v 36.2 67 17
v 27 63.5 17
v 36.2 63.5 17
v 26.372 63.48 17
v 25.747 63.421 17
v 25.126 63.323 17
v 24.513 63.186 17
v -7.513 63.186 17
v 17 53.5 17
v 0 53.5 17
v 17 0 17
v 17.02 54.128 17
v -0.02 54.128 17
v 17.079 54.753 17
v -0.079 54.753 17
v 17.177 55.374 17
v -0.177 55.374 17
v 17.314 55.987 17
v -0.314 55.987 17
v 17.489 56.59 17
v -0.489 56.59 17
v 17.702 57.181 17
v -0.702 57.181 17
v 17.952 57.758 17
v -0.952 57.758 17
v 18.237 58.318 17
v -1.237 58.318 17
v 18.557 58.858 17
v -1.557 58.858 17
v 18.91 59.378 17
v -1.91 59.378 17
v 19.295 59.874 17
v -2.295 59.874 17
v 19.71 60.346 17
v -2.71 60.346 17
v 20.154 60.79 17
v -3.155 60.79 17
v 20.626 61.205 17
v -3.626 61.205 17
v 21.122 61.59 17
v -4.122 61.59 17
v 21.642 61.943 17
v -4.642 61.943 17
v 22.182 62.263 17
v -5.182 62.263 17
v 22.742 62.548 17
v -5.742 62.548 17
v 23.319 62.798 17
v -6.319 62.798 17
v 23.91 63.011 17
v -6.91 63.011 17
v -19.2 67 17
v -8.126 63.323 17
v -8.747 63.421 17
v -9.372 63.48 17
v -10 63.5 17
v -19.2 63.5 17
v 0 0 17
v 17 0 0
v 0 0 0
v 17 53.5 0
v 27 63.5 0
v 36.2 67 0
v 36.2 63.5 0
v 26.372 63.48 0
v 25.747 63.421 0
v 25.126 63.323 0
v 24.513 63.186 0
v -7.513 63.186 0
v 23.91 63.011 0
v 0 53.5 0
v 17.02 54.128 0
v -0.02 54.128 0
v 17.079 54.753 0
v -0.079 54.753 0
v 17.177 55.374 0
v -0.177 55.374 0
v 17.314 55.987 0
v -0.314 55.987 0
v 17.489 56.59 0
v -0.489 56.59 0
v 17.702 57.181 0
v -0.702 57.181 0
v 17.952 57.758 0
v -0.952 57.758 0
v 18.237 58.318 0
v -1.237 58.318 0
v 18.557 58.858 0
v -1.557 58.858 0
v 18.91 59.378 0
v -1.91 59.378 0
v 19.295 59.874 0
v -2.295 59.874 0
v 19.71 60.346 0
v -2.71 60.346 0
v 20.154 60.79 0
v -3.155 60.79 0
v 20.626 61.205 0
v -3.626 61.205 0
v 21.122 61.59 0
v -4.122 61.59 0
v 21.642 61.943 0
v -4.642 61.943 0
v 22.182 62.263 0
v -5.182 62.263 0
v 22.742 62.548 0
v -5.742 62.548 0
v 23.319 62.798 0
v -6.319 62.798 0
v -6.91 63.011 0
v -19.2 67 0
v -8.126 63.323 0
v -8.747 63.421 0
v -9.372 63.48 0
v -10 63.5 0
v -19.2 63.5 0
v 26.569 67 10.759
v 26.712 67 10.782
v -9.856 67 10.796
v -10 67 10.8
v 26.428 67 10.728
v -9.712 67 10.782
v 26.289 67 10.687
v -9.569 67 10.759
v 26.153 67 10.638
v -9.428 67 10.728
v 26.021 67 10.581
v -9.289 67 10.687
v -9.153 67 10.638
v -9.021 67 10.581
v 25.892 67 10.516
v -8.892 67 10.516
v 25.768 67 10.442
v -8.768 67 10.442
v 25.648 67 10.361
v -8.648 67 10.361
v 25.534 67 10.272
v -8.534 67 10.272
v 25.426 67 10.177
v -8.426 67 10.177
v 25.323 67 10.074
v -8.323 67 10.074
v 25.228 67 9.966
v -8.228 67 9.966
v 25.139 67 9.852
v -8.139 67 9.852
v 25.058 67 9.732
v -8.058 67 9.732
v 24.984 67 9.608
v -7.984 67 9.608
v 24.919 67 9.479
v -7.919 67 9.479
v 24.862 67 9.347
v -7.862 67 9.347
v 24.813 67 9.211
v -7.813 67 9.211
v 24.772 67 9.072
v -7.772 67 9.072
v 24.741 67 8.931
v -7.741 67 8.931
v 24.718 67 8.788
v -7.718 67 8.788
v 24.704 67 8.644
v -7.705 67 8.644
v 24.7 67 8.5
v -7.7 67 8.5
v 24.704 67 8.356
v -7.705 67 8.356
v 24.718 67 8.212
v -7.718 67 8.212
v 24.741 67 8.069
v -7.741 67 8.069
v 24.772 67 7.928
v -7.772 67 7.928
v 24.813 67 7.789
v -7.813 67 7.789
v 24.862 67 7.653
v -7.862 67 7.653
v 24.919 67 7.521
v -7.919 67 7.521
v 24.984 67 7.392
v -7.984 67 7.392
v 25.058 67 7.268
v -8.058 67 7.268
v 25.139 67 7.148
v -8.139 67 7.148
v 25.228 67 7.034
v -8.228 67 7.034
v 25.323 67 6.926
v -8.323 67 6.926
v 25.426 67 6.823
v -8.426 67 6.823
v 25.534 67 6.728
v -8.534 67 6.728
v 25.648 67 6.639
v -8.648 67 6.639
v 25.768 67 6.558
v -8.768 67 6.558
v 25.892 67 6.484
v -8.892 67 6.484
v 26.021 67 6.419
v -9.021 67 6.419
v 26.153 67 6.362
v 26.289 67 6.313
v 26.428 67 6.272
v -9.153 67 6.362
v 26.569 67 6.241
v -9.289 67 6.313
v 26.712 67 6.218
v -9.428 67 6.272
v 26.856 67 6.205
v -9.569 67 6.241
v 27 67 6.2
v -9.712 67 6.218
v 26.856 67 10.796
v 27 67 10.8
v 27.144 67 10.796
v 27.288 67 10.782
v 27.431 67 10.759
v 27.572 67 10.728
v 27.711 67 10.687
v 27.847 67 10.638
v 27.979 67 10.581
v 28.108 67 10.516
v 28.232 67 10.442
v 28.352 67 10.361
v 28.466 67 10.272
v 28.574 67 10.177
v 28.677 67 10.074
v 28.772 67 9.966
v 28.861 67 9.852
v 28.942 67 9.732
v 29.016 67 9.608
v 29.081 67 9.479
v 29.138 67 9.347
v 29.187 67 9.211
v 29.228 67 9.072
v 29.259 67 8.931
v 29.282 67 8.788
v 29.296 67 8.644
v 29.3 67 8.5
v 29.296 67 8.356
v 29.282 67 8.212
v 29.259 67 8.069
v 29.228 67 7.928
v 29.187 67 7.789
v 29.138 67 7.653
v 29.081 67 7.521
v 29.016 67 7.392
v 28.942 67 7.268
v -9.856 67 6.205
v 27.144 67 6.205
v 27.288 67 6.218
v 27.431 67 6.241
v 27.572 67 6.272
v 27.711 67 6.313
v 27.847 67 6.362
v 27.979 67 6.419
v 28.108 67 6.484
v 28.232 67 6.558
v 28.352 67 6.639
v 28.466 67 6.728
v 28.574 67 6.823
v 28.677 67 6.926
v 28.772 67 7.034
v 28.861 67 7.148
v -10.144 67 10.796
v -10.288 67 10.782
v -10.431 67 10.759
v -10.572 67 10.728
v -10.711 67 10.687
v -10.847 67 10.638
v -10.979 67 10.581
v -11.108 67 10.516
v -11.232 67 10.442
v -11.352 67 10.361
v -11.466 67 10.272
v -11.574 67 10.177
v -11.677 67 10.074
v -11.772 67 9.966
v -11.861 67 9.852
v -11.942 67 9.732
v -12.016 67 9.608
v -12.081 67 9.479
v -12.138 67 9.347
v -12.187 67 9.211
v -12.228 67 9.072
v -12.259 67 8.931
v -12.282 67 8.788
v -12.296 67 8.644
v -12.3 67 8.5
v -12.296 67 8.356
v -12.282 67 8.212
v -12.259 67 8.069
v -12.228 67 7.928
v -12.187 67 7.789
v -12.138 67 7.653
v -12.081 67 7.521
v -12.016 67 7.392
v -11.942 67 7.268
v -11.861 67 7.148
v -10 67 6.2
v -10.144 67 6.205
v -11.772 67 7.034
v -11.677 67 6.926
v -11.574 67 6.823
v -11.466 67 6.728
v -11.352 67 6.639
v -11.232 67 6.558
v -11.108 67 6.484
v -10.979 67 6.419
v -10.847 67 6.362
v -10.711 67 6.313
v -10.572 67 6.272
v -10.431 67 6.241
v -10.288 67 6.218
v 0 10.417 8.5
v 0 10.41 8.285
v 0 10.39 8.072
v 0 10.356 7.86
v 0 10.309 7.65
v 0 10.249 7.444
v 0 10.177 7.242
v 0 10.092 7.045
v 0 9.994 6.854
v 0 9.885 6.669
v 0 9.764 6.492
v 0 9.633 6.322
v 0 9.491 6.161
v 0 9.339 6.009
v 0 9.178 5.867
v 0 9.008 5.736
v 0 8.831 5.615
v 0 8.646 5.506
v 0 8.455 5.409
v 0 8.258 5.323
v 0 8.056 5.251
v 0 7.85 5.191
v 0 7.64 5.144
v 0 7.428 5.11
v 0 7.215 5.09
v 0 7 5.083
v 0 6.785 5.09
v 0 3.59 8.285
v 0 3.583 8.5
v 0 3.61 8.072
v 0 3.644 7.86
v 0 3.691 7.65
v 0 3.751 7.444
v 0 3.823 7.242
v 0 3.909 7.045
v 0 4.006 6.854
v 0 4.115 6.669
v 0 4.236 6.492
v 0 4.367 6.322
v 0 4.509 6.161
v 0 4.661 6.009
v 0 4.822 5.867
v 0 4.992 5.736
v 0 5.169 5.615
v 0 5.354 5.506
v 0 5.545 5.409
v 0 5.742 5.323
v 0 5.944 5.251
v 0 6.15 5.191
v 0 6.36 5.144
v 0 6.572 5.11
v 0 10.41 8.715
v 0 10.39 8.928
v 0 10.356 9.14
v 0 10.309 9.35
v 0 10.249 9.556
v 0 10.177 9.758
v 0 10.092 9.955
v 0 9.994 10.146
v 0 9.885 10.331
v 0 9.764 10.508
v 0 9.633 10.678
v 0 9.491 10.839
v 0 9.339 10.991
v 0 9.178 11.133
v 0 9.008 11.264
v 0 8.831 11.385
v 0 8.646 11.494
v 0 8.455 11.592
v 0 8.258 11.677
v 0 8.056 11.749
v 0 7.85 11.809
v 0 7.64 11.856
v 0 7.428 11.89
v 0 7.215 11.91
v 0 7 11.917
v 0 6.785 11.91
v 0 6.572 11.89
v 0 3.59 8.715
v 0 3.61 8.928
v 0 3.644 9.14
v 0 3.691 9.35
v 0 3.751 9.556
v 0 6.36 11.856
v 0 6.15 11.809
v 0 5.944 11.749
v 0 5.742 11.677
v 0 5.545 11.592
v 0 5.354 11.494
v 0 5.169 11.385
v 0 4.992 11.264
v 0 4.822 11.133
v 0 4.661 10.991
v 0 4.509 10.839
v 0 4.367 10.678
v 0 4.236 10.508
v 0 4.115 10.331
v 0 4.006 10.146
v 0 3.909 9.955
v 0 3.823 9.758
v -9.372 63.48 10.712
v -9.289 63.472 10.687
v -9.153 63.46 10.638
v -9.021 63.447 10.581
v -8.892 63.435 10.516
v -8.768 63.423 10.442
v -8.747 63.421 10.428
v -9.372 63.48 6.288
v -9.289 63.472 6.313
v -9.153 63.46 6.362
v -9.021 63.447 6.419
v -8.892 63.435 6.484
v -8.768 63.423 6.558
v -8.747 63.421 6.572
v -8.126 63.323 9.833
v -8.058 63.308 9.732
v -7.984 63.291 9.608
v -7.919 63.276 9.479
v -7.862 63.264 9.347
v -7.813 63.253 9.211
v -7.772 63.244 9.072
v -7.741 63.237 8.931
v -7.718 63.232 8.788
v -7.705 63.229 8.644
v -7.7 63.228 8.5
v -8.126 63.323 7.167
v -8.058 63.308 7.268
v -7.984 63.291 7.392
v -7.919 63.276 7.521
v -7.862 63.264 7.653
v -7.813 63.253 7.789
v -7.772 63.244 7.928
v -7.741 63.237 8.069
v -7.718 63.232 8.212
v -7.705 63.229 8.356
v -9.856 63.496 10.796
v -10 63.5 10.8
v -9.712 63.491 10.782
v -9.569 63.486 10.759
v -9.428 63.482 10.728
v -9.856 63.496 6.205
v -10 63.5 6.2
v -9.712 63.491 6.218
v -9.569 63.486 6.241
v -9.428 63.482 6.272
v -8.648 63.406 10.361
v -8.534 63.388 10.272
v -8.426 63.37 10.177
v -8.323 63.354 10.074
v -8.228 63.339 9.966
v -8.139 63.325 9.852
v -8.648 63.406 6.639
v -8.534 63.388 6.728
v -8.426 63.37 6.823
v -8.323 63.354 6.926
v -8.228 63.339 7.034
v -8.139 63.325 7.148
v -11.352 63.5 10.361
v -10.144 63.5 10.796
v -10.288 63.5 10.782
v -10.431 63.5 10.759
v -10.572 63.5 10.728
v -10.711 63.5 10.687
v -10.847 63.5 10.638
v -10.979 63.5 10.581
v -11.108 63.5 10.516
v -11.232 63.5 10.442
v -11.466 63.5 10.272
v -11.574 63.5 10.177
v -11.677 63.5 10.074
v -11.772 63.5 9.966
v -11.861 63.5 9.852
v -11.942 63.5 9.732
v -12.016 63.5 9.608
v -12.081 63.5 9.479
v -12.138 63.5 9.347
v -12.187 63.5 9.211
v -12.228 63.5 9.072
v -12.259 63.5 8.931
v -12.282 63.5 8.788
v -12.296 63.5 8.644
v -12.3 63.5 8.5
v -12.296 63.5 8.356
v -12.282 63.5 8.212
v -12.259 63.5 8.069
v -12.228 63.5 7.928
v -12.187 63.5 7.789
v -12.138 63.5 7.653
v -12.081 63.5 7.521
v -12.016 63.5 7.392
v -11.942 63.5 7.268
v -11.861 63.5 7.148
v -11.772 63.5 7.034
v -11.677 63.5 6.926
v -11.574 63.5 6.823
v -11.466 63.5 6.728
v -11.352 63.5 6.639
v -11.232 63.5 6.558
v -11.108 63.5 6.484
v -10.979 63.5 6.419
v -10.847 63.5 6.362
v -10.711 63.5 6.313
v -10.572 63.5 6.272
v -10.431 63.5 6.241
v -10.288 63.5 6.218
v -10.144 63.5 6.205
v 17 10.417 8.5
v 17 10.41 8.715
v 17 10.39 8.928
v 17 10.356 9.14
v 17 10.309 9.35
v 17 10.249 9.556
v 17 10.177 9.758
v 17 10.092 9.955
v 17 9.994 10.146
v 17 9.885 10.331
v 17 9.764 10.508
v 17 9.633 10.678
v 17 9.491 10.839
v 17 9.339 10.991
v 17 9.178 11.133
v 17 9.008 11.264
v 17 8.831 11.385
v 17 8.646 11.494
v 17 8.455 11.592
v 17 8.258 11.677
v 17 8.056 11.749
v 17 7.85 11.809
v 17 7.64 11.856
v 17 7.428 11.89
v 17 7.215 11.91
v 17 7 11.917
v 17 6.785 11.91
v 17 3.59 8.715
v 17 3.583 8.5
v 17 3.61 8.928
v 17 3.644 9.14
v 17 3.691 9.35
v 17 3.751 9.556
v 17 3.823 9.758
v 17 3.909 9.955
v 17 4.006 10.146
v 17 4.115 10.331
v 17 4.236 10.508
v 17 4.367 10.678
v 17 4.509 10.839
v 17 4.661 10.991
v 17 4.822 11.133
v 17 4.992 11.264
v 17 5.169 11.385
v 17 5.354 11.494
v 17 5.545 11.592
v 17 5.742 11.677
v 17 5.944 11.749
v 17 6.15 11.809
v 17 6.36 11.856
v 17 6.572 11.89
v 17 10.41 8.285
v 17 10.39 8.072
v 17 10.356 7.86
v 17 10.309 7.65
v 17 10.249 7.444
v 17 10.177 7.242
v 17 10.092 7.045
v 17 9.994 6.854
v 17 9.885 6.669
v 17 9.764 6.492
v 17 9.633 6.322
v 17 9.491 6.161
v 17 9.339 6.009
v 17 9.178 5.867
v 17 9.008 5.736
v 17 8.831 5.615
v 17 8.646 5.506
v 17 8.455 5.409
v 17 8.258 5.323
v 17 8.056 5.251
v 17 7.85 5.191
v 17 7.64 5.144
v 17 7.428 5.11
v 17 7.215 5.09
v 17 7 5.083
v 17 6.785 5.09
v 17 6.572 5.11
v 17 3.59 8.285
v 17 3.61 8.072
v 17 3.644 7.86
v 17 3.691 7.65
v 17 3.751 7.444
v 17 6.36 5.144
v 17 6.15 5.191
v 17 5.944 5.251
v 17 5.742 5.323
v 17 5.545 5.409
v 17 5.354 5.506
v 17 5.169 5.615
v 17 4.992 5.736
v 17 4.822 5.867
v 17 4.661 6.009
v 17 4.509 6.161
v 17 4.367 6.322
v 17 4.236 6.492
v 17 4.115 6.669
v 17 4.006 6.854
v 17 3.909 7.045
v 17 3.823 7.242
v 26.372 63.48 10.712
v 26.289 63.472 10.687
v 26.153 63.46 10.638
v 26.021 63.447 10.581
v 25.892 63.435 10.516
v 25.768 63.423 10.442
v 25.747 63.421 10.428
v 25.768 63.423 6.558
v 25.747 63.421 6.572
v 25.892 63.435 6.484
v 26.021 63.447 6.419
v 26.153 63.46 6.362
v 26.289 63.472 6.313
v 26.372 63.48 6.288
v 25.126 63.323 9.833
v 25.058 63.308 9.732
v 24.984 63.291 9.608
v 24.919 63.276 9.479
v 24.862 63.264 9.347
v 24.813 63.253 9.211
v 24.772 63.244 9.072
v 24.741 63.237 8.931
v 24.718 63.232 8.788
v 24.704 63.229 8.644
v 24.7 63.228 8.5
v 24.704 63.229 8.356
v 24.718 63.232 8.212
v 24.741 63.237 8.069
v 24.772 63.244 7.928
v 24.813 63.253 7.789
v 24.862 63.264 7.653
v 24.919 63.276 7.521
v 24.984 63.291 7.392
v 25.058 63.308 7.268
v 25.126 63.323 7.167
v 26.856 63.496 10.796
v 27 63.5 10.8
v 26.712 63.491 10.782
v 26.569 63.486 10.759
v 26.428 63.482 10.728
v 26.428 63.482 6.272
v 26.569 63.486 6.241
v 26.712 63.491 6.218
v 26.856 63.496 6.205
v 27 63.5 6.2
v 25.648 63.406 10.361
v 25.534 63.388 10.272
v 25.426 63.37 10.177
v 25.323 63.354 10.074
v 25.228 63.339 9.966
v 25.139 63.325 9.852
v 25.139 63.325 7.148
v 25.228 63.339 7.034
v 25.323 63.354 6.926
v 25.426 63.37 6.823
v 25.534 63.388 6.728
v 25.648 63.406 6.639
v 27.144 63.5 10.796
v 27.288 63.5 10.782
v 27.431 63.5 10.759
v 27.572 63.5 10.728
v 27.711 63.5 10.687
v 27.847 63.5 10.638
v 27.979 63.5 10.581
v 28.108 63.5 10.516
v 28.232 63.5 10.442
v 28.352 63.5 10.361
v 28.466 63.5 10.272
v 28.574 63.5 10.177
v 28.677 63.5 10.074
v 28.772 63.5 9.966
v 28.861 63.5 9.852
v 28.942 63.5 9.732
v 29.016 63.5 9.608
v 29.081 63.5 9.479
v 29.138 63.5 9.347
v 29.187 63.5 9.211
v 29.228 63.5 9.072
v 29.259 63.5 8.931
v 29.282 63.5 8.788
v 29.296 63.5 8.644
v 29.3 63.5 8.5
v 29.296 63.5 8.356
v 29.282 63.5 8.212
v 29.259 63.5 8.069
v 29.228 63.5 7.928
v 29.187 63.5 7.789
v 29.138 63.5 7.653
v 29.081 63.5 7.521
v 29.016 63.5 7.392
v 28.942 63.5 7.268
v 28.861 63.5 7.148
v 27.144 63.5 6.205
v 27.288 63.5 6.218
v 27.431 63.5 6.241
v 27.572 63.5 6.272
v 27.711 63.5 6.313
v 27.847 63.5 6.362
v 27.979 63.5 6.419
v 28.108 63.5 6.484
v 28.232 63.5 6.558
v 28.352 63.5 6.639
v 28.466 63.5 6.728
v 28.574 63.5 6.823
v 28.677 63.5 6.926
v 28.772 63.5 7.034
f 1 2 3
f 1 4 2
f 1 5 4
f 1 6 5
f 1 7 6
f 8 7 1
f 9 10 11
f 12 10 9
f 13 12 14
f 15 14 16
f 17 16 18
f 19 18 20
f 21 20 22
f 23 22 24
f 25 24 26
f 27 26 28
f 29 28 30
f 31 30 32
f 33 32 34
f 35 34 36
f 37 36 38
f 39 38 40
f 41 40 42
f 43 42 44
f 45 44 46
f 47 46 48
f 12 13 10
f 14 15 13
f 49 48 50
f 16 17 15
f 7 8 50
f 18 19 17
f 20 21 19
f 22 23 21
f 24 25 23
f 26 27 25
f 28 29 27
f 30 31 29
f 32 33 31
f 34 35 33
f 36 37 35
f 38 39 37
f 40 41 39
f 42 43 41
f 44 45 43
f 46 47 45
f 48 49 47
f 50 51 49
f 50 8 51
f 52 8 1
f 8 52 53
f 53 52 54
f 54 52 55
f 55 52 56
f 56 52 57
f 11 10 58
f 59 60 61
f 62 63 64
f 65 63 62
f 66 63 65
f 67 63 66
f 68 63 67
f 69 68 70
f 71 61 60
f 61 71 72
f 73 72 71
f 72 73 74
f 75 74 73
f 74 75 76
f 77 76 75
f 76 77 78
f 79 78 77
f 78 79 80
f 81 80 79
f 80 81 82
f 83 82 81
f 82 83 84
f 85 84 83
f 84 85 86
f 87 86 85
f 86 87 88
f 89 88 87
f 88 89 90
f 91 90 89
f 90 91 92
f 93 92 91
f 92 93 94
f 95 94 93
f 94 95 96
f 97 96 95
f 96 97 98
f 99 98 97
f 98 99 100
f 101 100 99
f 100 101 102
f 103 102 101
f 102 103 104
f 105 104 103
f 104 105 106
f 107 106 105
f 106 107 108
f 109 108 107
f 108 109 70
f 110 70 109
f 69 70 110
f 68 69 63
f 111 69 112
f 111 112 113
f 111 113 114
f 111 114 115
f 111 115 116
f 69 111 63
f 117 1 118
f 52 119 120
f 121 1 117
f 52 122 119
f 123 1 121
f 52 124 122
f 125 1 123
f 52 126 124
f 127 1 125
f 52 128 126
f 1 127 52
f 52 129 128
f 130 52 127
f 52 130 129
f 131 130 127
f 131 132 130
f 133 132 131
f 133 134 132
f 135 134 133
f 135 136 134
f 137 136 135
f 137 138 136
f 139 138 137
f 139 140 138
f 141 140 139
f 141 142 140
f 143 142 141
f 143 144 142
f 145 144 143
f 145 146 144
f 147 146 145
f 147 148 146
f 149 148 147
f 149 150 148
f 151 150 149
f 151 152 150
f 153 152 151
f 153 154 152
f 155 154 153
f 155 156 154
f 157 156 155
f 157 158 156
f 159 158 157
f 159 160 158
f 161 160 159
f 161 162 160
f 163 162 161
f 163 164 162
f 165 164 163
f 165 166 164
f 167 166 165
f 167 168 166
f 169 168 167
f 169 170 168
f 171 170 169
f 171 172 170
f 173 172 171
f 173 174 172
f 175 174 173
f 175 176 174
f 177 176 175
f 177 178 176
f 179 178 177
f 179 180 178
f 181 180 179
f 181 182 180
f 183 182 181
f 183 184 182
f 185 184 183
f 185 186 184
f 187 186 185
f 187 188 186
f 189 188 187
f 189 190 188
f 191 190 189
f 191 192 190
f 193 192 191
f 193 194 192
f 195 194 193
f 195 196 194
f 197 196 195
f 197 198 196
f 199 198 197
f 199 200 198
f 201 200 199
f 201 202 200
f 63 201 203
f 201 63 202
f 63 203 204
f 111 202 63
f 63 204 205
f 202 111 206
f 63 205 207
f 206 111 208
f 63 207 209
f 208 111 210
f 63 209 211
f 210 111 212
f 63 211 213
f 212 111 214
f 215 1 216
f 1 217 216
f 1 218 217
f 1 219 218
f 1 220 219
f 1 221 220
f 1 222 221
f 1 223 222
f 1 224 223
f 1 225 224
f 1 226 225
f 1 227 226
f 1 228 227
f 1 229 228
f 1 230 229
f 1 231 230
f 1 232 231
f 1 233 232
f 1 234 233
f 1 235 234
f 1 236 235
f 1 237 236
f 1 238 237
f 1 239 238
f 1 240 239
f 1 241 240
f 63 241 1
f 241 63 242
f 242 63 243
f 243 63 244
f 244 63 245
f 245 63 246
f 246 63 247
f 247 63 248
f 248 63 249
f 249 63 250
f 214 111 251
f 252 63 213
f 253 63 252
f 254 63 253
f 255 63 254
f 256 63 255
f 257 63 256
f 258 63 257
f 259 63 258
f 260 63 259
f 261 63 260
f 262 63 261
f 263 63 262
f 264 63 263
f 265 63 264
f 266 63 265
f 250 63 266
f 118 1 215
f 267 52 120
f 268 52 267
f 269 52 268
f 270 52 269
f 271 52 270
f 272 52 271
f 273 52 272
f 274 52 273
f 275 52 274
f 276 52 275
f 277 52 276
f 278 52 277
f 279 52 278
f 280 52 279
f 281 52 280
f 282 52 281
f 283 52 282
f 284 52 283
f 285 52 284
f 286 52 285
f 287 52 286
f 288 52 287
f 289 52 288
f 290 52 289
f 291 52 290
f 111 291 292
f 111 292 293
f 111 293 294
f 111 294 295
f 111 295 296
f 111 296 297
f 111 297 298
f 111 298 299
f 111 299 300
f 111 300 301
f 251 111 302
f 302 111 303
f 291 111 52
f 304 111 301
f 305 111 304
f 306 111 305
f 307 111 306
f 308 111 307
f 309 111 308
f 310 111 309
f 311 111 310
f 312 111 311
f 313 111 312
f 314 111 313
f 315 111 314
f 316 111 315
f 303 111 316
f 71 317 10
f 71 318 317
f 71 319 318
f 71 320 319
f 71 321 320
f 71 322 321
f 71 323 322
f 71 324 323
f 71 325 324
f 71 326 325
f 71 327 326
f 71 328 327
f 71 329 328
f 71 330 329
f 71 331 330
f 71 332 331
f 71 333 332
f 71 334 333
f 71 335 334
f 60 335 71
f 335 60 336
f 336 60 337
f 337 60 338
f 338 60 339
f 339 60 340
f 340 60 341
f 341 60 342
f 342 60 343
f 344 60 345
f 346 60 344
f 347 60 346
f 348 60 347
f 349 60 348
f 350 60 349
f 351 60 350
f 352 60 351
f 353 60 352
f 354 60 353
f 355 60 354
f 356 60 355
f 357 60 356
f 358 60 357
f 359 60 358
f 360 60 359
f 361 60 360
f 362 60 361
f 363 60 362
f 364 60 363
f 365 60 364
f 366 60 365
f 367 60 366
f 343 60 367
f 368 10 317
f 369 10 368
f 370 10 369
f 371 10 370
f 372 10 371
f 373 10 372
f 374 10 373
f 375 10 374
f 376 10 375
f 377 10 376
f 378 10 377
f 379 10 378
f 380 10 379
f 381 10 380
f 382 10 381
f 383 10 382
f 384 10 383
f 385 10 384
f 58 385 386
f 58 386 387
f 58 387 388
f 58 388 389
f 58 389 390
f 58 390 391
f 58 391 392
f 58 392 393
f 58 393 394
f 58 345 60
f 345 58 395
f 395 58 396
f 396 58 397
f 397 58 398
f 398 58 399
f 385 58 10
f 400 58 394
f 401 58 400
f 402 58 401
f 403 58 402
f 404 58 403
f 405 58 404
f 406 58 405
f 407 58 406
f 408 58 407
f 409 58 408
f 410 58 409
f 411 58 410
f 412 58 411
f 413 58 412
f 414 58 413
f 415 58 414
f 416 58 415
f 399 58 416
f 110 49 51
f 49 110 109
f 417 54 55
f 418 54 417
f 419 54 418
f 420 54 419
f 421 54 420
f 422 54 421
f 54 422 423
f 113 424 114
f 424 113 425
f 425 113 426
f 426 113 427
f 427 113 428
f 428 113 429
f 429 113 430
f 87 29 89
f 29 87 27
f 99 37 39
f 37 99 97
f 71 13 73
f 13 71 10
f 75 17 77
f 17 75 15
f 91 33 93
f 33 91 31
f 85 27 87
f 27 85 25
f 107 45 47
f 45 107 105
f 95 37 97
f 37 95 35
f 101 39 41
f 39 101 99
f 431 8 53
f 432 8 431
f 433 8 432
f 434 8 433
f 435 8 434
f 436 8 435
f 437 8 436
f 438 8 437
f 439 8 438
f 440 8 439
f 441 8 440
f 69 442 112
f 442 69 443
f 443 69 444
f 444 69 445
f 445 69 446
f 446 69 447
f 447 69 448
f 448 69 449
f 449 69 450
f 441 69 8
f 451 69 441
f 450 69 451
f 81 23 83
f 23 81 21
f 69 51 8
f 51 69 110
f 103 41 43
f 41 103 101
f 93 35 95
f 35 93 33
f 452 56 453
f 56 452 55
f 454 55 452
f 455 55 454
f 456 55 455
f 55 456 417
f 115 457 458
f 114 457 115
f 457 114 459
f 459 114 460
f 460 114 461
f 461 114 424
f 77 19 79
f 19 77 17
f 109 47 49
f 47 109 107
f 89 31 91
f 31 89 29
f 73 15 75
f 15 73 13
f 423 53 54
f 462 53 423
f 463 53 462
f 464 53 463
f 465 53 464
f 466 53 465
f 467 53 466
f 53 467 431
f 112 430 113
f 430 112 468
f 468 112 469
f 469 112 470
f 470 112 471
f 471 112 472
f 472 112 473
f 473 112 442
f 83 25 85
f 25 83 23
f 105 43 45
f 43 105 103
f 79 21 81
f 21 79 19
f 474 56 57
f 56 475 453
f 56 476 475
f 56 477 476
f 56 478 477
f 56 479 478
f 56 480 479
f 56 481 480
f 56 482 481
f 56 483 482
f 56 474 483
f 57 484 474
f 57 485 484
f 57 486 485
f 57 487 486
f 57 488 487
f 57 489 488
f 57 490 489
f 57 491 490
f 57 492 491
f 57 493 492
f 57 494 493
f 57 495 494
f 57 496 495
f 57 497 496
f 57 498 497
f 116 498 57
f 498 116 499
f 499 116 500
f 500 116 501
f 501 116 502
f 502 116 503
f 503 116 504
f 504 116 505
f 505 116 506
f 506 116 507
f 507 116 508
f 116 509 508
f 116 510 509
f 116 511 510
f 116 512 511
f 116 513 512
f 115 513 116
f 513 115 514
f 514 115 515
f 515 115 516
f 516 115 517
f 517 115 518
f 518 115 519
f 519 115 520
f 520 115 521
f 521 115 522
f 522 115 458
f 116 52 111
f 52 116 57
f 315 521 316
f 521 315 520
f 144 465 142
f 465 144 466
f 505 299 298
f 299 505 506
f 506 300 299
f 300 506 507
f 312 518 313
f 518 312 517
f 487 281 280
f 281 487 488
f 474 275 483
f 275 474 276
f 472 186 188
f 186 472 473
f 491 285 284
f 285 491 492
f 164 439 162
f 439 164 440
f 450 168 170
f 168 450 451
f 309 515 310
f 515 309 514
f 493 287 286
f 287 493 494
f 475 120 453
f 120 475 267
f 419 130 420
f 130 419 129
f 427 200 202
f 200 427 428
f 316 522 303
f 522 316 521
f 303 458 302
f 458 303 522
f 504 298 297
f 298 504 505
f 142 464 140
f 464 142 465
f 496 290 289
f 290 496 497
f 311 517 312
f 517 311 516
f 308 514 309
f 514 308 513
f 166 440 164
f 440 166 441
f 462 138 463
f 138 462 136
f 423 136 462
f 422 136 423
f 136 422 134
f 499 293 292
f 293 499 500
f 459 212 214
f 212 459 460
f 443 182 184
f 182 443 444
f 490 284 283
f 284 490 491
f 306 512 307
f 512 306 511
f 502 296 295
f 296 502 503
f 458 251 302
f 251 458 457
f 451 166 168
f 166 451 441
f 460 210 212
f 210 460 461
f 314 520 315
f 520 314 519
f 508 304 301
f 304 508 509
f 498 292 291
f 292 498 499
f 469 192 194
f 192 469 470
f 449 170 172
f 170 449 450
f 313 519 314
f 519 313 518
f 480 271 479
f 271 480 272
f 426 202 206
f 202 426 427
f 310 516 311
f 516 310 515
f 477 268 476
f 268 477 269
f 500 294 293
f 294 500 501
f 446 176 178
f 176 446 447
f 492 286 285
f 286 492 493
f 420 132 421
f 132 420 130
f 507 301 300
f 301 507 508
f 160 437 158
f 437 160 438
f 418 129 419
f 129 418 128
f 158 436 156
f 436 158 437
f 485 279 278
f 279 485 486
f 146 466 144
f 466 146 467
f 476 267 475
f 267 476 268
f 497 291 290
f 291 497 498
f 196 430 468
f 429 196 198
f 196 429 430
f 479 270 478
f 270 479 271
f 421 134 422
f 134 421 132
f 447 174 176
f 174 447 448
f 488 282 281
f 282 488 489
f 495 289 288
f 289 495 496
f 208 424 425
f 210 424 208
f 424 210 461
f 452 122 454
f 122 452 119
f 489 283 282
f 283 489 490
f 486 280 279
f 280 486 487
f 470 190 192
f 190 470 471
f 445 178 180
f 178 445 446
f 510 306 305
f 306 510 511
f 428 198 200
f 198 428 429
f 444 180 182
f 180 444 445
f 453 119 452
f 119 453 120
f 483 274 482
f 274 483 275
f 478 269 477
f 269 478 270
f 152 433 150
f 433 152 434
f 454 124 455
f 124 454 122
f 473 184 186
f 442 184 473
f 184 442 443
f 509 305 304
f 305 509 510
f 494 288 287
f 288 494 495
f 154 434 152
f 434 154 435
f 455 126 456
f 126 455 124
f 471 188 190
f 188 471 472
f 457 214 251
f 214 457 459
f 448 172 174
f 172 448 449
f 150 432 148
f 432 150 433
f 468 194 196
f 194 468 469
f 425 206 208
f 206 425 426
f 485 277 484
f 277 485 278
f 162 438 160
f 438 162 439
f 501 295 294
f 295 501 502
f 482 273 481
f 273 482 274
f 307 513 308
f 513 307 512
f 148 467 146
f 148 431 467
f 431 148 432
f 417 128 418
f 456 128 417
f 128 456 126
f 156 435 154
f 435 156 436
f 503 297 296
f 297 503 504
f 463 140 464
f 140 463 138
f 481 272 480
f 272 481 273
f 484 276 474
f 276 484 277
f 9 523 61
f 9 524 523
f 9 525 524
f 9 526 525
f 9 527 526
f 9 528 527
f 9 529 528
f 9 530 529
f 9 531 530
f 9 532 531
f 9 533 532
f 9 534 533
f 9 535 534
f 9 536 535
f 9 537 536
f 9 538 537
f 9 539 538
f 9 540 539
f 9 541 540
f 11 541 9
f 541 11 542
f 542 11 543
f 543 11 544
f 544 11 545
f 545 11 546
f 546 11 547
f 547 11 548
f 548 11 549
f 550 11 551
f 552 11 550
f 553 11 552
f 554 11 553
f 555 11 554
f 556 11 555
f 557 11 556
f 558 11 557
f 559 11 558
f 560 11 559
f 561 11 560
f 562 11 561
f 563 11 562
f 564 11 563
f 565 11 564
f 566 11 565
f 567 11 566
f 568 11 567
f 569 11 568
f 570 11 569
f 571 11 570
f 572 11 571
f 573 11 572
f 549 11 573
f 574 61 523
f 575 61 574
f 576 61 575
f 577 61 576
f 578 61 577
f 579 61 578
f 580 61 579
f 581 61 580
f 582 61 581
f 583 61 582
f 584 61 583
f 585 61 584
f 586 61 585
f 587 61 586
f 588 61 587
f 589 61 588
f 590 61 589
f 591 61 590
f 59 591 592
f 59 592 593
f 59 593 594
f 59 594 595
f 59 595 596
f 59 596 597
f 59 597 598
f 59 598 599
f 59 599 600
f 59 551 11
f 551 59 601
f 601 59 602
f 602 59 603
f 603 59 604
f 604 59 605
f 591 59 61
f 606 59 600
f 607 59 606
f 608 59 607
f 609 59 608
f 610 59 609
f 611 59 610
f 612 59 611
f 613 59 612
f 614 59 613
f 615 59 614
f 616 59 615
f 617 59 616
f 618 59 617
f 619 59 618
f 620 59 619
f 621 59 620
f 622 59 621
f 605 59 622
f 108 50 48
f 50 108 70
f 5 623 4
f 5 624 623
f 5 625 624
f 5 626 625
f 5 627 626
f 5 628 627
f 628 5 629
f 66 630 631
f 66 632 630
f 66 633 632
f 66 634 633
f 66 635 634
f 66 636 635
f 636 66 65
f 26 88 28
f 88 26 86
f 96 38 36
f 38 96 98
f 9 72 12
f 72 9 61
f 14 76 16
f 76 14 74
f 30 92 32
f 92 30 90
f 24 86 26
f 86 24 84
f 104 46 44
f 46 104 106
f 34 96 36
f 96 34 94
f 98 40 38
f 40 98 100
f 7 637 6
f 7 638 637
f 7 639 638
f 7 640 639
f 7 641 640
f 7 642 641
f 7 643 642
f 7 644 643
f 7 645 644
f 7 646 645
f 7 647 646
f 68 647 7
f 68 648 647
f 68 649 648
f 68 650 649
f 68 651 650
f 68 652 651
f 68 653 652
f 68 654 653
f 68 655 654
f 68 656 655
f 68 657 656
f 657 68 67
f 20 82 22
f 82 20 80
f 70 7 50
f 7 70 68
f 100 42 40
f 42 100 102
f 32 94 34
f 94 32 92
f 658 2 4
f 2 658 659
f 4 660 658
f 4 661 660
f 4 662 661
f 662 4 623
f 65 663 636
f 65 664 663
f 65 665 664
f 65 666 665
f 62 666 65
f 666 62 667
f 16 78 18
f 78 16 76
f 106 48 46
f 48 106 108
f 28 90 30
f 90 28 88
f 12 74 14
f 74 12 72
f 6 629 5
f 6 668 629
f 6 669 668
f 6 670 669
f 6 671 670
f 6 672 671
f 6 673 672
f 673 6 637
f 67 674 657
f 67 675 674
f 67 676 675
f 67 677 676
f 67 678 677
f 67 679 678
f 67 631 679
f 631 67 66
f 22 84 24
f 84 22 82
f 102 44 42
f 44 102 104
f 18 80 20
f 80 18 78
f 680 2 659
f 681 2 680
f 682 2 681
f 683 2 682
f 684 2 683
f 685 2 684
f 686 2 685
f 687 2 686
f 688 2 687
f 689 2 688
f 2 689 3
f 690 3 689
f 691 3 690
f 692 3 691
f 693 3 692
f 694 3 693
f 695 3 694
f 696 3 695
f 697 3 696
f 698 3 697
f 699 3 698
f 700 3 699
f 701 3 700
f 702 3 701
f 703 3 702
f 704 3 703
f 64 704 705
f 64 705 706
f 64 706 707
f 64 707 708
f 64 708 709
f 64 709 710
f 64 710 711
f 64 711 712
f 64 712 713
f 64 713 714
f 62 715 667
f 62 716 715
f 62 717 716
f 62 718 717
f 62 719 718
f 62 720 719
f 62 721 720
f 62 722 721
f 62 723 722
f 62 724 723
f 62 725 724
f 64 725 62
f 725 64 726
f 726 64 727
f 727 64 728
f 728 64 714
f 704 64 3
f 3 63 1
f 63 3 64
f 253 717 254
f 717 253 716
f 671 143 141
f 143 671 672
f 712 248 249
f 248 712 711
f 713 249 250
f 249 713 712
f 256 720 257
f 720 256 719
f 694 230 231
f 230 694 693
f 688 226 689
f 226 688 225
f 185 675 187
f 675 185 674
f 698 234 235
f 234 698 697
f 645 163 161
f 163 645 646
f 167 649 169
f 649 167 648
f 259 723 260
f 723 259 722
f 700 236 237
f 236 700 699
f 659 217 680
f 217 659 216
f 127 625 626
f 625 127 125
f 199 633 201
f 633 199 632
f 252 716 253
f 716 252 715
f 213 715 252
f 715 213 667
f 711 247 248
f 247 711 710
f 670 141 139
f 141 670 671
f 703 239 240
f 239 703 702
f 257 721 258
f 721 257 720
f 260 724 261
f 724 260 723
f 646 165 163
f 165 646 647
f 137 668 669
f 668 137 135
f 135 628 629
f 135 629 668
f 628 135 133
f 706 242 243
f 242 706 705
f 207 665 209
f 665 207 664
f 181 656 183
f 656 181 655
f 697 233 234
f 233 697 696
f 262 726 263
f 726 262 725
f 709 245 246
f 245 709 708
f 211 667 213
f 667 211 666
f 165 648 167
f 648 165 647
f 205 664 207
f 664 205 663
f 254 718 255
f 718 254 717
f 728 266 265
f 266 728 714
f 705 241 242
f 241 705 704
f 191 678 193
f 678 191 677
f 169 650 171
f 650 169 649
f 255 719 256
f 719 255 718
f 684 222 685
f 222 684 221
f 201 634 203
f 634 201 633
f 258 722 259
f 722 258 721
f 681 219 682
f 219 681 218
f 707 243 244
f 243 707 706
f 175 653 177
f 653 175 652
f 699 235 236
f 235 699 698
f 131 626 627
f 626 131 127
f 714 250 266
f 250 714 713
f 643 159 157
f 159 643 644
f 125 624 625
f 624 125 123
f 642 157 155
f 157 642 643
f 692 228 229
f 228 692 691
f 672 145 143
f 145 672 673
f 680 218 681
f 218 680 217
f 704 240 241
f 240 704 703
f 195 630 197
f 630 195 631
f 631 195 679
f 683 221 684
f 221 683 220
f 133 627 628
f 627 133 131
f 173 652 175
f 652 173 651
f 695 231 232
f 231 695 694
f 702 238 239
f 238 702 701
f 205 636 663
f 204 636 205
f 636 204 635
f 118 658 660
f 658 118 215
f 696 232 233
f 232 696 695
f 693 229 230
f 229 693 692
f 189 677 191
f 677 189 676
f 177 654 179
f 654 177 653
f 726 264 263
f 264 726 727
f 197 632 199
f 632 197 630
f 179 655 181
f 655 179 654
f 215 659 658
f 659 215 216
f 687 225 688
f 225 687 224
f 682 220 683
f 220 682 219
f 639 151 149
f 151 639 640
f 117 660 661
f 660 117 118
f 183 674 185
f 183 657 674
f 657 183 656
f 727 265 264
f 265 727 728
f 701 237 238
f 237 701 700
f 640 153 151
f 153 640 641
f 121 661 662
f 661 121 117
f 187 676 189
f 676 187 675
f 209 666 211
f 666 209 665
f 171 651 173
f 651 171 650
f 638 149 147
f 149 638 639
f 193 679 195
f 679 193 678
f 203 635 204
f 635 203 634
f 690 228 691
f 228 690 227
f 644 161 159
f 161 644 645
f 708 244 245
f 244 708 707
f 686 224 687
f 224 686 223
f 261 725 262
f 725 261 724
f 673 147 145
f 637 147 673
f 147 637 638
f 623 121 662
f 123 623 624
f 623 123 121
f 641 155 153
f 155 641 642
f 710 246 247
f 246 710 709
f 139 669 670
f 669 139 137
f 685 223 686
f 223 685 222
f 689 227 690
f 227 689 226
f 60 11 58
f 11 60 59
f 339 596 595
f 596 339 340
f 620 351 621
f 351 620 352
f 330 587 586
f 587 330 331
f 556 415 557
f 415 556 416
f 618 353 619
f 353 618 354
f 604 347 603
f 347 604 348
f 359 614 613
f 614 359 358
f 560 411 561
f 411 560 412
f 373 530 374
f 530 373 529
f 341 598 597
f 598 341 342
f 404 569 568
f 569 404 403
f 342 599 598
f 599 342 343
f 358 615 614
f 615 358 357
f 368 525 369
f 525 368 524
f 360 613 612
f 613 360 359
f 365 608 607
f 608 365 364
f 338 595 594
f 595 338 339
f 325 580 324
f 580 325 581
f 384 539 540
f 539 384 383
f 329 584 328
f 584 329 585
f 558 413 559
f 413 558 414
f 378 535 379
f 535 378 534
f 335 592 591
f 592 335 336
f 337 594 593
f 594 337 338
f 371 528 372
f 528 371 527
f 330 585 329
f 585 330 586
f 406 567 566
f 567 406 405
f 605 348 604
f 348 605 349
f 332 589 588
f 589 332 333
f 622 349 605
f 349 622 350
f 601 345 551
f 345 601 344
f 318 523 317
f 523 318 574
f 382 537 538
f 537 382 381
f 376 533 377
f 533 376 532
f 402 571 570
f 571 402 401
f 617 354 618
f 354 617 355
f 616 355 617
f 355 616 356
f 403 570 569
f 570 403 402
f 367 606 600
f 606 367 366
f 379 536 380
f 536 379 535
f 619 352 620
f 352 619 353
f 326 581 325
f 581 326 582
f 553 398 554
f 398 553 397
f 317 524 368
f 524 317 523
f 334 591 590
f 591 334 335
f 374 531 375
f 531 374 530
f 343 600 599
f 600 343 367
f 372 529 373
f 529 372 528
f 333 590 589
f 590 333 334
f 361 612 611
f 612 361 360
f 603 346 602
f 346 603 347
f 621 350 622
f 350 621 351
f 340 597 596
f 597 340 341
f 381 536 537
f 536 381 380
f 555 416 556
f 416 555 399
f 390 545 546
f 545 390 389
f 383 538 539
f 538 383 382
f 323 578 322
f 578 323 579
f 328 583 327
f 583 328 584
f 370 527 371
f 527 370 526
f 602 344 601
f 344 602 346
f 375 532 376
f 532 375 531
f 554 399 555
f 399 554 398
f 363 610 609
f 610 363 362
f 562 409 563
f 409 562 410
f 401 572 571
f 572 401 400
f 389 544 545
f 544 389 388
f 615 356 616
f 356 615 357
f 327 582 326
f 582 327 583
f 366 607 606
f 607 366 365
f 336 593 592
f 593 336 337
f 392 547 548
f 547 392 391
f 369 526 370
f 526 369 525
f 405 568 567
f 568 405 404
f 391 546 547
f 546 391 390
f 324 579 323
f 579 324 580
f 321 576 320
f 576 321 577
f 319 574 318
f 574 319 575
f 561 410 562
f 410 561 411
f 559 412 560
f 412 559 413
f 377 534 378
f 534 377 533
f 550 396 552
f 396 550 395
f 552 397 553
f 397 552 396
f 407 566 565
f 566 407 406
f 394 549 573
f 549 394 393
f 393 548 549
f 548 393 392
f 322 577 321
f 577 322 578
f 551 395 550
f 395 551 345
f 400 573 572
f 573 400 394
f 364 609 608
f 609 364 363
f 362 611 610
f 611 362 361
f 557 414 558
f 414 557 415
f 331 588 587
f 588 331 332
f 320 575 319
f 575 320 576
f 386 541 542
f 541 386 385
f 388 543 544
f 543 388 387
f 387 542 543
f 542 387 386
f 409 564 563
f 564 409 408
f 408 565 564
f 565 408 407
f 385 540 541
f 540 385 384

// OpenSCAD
length = 60;//52;
width = 10;//86;
height = 10;
wall = 3.5;
o_width = width + wall + wall;
o_length = length + wall + wall;
o_height = height + wall + wall;

resolution = 100;

$fn = resolution;

// outer box
standoff_id=3.45;
standoff_od=7;
standoff_od_wall_depth = wall-2;
standoff_width = 55.8;
standoff_length = 28.4;
// main box
//add the pin mechanism
pin_od = 11;
pin_id = 5.2*(4/3)-.1;
wall_offset = 6;
difference() {
    cube([o_width, o_length, o_height]);
    rotate([0,90,0]) {
        translate([-(height+wall+wall)/2,wall+wall,0]) {
            cylinder(h=9000, d=pin_id);   
        }
    }
}
//}


mount_arm_surface_area = 10;
screwhole_size = 4.6;
//box_mount_hole_1
translate([0,o_length,0]) {
mirror([0,1,0]) {
rotate(90){
    difference() {
        union() {
            difference() {
                cube([mount_arm_surface_area+wall, mount_arm_surface_area, o_height]);
                // angled for strength
                translate([mount_arm_surface_area+wall, mount_arm_surface_area, -1]){
                    cylinder(h=9999, r=mount_arm_surface_area);
                }
            }
            cube([wall, mount_arm_surface_area+screwhole_size*2, o_height]);
        }
        // screw hole
        rotate([0,90,0]) {
            translate([-o_height/2, mount_arm_surface_area, -1]){
                cylinder(h=9999, d=screwhole_size);
            }
        }
    }
}
//box mount hole 2
//copied and pasted but translated an mirrored
translate([o_width, 0, 0]){
    mirror([1,0,0]){
        rotate(90) {
            difference() {
                union() {
                    difference() {
                        cube([mount_arm_surface_area+wall, mount_arm_surface_area, o_height]);
                        // angled for strength
                        translate([mount_arm_surface_area+wall, mount_arm_surface_area, -1]){
                            cylinder(h=9999, r=mount_arm_surface_area);
                        }
                    }
                    cube([wall, mount_arm_surface_area+screwhole_size*2, o_height]);
                }
                // screw hole
                rotate([0,90,0]) {
                    translate([-o_height/2, mount_arm_surface_area, -1]){
                        cylinder(h=9999, d=screwhole_size);
                    }
                }
            }
        }
    }
}
}
}
